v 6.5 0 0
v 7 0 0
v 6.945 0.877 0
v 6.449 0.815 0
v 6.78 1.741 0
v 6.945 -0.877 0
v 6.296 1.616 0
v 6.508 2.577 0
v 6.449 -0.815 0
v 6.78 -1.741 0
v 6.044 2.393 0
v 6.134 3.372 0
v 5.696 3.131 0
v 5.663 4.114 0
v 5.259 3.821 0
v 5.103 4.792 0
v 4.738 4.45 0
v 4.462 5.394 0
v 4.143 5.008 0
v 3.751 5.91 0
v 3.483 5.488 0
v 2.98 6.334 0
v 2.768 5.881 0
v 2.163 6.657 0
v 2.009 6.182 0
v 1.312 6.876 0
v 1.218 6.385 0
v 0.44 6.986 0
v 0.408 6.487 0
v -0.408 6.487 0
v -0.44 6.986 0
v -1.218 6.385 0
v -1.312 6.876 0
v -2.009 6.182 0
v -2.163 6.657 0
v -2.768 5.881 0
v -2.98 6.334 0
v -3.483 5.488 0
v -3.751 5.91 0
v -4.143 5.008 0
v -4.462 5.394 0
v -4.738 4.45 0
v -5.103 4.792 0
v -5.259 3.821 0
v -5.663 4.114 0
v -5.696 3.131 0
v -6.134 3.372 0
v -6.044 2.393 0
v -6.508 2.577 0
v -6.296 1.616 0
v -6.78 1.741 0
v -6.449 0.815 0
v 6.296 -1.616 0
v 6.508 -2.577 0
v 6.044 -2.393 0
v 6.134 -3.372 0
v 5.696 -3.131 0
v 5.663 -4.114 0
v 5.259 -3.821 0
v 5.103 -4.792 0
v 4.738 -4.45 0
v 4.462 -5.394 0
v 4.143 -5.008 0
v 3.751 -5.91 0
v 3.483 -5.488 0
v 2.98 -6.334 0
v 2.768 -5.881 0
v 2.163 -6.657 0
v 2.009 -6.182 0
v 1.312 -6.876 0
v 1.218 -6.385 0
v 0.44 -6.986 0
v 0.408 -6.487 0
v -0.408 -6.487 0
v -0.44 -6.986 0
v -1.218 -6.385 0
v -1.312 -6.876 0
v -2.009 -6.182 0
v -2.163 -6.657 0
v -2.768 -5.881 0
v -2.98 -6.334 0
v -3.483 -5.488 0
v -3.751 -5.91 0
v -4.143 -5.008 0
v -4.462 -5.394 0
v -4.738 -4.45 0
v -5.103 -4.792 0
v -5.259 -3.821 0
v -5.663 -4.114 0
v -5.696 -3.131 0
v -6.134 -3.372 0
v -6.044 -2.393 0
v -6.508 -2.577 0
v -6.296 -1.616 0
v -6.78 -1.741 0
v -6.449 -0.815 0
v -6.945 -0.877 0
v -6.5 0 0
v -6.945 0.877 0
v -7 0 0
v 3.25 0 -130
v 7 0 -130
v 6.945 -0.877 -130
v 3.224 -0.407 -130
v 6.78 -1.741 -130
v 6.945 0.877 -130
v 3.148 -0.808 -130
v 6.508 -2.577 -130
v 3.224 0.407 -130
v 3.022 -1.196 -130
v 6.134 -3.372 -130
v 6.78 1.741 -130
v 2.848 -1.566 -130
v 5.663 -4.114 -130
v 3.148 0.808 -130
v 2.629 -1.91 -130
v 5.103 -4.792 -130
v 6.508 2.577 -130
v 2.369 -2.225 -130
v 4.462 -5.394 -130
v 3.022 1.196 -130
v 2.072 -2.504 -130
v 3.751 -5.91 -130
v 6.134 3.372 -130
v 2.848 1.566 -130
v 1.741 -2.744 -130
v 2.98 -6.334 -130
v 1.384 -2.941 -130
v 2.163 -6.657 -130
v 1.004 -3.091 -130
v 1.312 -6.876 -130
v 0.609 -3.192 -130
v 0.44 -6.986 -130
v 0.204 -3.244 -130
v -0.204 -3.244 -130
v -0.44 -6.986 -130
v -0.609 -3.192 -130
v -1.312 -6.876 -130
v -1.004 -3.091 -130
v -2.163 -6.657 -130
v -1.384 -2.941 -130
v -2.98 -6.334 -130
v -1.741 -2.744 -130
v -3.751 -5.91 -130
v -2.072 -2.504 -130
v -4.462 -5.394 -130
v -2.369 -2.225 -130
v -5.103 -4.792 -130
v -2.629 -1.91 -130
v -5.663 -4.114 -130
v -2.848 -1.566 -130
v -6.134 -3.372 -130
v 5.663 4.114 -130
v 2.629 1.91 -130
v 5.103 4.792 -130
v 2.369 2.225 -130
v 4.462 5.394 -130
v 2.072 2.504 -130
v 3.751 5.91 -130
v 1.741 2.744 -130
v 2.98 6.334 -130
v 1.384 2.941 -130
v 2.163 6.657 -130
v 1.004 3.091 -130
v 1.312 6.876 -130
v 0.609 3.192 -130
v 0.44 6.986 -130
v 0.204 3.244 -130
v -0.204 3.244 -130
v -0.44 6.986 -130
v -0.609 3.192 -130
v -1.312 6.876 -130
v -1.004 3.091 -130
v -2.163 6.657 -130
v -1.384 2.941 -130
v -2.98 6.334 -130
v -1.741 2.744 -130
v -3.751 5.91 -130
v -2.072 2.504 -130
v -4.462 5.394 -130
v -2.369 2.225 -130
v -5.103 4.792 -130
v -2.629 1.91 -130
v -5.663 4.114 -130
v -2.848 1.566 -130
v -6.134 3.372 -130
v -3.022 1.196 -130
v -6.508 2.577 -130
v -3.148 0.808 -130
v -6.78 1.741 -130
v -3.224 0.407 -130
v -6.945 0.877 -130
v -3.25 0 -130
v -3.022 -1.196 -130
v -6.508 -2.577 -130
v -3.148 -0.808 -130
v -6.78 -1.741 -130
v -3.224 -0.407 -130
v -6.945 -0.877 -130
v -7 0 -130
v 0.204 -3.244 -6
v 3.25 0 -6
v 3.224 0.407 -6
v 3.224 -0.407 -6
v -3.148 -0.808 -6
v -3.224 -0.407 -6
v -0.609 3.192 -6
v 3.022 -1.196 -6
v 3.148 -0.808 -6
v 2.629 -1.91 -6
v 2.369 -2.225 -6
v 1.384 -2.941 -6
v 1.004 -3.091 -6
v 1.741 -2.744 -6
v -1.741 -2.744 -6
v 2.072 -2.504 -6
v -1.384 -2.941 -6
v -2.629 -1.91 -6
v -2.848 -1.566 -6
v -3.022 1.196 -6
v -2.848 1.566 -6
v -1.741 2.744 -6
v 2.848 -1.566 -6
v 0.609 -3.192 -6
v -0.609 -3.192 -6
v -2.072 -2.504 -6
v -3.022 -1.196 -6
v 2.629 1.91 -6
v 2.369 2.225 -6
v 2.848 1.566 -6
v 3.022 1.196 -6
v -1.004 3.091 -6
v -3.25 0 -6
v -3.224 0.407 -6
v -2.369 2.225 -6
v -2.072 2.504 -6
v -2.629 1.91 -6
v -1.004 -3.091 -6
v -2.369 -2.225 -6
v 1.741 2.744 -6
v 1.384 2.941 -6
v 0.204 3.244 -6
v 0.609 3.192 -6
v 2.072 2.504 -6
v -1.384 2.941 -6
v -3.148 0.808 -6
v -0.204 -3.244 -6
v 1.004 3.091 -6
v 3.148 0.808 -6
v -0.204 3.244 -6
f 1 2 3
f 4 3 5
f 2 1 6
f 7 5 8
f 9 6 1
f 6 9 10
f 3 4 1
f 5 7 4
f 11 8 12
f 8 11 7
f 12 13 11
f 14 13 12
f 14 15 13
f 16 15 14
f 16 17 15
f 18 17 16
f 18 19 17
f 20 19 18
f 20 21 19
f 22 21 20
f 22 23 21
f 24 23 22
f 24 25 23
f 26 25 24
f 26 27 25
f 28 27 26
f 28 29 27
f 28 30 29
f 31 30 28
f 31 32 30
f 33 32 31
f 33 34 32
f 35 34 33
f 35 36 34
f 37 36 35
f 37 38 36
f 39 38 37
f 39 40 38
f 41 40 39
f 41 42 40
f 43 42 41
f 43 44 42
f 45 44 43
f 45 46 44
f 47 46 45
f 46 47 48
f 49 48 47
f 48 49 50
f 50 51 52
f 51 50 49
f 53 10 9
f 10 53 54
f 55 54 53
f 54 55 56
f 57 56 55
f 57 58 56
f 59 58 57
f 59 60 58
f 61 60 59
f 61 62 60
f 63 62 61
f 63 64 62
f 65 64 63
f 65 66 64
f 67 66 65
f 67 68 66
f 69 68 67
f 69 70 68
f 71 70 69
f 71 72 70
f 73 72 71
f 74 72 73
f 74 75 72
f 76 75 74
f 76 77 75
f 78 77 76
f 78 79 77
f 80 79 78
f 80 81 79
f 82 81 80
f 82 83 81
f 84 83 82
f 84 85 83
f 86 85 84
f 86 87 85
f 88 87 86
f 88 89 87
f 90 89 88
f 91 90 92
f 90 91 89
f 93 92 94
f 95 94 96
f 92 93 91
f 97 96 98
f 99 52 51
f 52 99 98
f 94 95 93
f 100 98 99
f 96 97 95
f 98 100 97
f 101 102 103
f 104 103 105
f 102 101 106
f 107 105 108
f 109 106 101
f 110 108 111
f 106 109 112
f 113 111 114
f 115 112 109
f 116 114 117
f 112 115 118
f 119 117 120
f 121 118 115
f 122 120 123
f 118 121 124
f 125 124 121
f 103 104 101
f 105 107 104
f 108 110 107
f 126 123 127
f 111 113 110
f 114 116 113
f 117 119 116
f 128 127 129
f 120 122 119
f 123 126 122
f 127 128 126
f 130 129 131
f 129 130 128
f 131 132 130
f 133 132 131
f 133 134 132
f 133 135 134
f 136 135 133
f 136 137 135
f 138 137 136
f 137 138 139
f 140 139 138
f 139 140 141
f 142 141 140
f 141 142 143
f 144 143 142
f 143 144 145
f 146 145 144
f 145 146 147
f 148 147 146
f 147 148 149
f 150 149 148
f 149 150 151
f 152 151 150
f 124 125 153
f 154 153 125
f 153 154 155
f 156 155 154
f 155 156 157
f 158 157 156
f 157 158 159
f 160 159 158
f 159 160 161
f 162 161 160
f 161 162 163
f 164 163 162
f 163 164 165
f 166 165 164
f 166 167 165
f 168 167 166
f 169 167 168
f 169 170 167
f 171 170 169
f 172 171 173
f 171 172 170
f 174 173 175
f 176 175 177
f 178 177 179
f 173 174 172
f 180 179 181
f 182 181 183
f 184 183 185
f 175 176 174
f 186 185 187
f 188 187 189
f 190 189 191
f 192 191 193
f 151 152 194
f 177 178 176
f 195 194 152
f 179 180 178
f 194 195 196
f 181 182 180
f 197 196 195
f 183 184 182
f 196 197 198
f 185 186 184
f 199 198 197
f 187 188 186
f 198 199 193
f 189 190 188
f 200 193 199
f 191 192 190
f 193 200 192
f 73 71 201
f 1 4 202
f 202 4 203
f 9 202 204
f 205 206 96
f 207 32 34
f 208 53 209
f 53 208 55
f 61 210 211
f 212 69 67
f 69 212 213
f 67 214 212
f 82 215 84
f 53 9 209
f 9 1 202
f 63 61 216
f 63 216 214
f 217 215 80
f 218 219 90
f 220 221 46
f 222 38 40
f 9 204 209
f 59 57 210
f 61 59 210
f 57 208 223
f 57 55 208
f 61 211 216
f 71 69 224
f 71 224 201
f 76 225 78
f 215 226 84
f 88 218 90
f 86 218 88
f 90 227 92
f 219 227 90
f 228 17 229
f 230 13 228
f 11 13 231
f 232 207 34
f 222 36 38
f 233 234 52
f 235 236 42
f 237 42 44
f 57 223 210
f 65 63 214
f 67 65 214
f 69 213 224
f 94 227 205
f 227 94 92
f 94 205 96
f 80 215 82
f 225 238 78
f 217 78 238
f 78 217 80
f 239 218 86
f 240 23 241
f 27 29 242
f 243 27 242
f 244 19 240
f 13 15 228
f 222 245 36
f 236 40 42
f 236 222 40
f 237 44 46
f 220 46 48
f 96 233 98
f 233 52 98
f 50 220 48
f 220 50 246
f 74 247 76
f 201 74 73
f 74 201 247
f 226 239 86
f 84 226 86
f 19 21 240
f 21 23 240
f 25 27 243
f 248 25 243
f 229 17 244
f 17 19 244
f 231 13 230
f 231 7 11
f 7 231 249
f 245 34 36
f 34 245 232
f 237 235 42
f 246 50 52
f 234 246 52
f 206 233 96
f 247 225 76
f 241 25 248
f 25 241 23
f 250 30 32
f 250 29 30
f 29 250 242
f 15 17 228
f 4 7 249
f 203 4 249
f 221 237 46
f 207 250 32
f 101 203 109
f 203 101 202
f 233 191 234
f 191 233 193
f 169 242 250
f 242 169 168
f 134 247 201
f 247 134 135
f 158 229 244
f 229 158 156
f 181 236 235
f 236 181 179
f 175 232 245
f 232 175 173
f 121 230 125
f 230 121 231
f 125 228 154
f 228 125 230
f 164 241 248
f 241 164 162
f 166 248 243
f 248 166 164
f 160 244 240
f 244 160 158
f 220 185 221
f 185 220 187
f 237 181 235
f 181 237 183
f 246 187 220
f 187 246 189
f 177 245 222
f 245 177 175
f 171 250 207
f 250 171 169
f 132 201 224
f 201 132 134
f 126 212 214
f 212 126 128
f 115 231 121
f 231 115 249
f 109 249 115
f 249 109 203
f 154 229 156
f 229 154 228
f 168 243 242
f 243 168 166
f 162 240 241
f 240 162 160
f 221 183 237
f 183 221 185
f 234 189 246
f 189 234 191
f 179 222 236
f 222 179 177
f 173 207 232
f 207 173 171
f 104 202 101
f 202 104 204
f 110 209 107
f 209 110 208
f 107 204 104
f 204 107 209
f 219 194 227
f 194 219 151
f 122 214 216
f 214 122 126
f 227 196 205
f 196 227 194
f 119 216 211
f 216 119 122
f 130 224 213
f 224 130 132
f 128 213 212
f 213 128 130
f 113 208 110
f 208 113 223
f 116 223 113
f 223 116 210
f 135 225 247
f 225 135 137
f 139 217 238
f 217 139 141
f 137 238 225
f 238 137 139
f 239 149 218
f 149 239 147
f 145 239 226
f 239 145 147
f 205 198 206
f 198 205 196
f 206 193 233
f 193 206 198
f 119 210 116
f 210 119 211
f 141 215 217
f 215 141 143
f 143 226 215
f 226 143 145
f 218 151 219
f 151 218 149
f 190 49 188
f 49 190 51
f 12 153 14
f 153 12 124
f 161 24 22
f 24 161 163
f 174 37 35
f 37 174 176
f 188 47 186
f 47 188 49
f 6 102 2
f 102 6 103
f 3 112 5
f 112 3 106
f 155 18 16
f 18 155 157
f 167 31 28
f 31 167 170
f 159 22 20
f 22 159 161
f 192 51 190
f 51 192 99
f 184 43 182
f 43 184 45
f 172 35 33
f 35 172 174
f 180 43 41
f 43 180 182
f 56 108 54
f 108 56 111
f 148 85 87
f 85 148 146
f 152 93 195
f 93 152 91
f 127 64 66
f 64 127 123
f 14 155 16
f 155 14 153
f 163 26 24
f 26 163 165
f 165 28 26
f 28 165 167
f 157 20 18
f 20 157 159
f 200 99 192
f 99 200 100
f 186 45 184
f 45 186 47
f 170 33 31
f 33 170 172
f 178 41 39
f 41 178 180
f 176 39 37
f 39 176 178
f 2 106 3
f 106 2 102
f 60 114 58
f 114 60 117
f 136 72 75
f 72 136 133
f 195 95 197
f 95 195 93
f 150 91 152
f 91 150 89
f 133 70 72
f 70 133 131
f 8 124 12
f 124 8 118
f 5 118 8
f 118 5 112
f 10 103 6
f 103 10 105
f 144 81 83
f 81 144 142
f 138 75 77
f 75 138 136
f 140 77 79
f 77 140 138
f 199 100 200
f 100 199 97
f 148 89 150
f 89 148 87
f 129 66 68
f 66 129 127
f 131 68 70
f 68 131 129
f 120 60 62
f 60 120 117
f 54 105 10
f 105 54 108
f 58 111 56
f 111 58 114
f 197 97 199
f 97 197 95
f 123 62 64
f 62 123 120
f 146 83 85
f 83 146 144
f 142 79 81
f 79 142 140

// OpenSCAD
$fn = 50;


difference() {
	union() {
		translate(v = [0, 0, -130.0000000000]) {
			cylinder(h = 130, r = 7.0000000000);
		}
		cylinder(h = 0, r = 13.0000000000);
	}
	union() {
		translate(v = [0, 0, 0]) {
			rotate(a = [0, 0, 0]) {
				difference() {
					union() {
						#translate(v = [0, 0, -130.0000000000]) {
							cylinder(h = 130, r = 2.2500000000);
						}
						#translate(v = [0, 0, -6]) {
							cylinder(h = 6, r1 = 3.2500000000, r2 = 6.5000000000);
						}
						#translate(v = [0, 0, -130.0000000000]) {
							cylinder(h = 130, r = 3.2500000000);
						}
						#translate(v = [0, 0, -130.0000000000]) {
							cylinder(h = 130, r = 2.2500000000);
						}
					}
					union();
				}
			}
		}
	}
}
